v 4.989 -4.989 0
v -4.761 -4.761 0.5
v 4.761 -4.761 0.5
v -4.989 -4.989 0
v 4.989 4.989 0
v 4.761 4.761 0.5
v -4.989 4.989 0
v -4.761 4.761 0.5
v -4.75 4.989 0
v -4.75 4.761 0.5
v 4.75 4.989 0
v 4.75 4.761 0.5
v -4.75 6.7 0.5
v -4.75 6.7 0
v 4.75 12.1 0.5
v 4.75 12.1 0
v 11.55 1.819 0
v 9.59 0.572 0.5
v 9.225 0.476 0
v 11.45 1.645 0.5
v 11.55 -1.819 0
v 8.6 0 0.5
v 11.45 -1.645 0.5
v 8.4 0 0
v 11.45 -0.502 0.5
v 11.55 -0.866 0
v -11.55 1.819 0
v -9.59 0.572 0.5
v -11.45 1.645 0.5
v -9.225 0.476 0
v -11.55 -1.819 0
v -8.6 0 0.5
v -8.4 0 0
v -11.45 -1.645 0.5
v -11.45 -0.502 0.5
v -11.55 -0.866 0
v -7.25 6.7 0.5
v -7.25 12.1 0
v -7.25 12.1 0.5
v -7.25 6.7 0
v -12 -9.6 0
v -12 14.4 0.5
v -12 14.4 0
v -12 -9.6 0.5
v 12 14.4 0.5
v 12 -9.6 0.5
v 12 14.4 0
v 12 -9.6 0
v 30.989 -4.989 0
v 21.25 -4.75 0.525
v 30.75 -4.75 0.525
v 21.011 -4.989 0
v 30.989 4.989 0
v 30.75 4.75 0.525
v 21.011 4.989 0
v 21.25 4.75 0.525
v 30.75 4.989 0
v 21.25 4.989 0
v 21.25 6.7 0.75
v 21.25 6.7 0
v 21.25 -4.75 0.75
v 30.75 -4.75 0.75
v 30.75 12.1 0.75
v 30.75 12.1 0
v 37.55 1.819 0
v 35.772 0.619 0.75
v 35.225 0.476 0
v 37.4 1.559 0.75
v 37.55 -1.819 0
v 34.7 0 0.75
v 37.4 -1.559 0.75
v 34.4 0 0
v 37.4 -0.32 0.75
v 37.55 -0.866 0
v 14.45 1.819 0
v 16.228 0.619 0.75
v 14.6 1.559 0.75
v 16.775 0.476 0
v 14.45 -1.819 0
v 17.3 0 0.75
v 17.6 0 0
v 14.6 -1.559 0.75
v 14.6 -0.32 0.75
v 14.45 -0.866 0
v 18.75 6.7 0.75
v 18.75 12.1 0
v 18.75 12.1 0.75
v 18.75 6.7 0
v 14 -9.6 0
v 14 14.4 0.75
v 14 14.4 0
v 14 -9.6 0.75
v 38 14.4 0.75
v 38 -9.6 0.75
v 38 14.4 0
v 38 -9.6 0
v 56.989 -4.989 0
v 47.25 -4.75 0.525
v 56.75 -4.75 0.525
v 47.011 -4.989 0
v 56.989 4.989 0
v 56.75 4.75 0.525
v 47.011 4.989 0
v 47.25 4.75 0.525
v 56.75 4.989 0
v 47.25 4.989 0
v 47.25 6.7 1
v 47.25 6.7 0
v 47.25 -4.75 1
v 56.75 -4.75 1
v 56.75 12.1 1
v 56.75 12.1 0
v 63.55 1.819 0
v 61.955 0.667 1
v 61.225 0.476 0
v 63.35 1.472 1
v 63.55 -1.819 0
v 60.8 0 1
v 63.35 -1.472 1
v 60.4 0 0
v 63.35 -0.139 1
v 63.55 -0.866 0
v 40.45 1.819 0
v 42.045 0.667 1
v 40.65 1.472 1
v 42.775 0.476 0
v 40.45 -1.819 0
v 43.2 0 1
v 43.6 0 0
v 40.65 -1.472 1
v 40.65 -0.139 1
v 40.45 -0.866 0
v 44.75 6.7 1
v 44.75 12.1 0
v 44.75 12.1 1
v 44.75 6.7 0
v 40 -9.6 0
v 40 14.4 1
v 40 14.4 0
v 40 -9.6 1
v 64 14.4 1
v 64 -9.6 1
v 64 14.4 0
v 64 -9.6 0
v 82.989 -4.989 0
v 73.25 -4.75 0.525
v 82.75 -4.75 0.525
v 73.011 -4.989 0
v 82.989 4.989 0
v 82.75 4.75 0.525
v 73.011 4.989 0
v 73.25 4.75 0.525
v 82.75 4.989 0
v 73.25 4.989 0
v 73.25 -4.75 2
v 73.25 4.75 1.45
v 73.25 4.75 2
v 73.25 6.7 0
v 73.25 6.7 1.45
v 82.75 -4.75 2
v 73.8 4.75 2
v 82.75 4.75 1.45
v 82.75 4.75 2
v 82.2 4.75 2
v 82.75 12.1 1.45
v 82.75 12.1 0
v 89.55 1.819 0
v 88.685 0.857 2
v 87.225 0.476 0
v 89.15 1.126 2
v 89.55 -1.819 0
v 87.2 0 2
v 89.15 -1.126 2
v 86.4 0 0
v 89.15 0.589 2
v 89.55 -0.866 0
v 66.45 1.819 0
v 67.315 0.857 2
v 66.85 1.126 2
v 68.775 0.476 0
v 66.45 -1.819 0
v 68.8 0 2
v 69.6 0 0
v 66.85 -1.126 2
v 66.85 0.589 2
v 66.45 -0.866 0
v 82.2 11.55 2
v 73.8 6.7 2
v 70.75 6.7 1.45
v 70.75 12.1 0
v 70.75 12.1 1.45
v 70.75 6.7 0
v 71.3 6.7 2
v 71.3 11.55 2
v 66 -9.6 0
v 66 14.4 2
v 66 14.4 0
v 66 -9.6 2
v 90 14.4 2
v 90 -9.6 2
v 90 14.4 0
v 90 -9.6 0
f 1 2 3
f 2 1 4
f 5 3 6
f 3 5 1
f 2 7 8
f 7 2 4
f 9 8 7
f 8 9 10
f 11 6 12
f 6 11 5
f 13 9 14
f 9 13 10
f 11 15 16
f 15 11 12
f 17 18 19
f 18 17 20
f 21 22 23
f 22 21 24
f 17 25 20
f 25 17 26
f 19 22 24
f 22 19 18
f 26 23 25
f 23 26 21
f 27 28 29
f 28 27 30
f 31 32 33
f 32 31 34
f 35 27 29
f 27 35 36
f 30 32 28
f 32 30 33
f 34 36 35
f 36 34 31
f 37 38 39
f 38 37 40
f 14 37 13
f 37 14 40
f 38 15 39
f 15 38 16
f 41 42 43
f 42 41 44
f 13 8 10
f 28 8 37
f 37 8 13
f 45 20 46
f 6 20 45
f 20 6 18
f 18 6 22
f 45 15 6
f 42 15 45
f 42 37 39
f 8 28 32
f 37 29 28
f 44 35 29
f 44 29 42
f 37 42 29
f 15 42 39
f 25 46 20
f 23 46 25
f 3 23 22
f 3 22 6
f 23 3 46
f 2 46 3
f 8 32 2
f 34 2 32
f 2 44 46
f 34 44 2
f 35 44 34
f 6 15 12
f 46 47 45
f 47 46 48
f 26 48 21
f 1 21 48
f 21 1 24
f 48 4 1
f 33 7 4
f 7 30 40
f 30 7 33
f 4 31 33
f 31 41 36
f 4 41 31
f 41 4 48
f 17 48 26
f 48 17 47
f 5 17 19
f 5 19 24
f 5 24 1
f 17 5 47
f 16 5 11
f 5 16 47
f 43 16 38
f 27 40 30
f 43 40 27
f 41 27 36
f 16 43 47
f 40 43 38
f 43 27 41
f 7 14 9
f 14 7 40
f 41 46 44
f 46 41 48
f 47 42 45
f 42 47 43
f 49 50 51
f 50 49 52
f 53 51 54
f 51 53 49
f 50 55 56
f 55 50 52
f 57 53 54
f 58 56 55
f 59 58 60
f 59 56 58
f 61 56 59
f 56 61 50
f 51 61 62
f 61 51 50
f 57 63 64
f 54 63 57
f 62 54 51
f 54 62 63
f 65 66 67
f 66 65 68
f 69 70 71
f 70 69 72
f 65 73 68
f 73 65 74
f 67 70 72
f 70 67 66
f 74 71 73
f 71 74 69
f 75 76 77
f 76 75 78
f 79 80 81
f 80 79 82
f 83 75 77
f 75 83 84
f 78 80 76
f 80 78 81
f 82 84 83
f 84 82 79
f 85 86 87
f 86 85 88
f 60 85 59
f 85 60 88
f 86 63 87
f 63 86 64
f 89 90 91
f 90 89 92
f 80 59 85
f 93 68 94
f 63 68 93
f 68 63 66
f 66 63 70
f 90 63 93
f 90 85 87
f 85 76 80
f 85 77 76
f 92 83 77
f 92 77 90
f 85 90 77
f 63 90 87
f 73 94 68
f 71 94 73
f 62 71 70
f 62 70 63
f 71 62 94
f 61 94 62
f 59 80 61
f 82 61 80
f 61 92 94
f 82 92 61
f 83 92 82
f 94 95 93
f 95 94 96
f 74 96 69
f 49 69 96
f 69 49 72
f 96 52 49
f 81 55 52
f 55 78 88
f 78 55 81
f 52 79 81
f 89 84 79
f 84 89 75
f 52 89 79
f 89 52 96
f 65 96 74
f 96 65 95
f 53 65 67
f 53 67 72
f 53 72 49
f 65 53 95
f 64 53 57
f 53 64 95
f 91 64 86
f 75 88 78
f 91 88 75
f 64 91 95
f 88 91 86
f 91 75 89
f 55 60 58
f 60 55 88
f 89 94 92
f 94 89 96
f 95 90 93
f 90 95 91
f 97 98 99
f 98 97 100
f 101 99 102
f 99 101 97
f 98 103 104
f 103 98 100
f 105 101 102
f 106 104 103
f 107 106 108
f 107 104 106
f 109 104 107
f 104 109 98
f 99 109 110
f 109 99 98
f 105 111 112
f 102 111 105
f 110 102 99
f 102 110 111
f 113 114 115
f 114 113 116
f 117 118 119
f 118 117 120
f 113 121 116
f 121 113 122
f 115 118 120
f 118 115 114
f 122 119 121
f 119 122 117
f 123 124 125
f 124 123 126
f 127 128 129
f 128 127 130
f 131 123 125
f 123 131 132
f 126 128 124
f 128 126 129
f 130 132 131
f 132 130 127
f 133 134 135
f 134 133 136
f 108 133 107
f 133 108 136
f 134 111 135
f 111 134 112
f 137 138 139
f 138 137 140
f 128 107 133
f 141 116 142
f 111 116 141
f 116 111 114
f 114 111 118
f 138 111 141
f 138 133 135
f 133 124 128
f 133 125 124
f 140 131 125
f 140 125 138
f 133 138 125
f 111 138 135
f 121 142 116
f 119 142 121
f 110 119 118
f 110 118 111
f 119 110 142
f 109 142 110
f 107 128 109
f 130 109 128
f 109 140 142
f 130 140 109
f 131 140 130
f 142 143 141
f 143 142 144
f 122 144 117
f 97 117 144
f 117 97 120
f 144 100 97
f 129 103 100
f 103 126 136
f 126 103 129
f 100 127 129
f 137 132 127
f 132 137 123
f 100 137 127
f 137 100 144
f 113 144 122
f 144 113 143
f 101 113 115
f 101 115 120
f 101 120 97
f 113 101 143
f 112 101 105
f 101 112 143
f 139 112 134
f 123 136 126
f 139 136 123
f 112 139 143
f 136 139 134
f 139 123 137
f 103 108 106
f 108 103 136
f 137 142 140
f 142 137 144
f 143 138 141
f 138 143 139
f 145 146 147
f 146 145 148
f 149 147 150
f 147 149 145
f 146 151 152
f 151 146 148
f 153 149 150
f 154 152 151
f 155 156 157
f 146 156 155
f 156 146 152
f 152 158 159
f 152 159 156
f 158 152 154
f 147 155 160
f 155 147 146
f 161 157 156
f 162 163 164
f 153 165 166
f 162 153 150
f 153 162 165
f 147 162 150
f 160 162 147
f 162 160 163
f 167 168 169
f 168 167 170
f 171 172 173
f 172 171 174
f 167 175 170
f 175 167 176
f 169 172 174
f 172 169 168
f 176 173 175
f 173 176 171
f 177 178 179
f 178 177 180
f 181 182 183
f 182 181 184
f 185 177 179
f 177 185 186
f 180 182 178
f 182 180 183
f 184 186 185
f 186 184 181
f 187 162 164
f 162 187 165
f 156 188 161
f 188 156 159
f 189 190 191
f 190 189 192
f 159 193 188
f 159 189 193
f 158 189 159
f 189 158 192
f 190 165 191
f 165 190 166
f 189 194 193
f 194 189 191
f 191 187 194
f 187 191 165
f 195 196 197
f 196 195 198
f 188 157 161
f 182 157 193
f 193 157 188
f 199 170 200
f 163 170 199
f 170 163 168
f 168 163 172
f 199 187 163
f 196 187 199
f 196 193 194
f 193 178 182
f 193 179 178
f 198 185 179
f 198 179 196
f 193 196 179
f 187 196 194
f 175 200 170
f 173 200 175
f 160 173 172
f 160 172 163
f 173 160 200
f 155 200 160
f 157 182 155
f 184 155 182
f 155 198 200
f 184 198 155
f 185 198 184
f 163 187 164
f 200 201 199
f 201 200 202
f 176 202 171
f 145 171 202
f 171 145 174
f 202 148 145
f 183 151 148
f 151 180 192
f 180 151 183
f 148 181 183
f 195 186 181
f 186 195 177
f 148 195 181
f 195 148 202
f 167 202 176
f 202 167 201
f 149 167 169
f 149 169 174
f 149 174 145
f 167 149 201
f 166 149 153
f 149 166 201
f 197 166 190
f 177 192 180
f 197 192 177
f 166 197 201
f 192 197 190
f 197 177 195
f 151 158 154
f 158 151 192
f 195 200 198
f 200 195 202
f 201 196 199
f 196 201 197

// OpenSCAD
// file: picam_2_screw_on.scad
/******************************************************************
*                                                                 *
* OpenFlexure Microscope: Raspberry Pi Camera v2 push-fit mount   *
*                                                                 *
* This is part of the OpenFlexure microscope, an open-source      *
* microscope and 3-axis translation stage.  It gets really good   *
* precision over a ~10mm range, by using plastic flexure          *
* mechanisms.                                                     *
*                                                                 *
* This file provides two parts for the microscope; the bit that   *
* fits onto the camera (picam2_camera_mount) and a cover that     *
* protects the PCB (picam_cover).  The former is part of the      *
* optics module in optics.scad, and the latter is printed         *
* directly.                                                       *
*                                                                 *
* The fit is set by one main function, picam2_push_fit().  It's   *
* designed to be subtracted from a solid block, with the bottom   *
* of the block at z=0.  It grips the plastic camera housing with  *
* four slightly flexible fingers, which ensures the camera pops   *
* in easily but is held relatively firmly.  Two screw holes are   *
* also provided that should self-tap with M2 or similar screws.   *
* I recommend you use these for extra security if the camera is   *
* likely to be handled a lot.                                     *
*                                                                 *
* (c) Richard Bowman, January 2016                                *
* Released under the CERN Open Hardware License                   *
*                                                                 *
******************************************************************/


use <utilities.scad>;

d=0.05; //small distance!

function camera_mount_height() = 4.5;
bottom = camera_mount_height() * -1;

module picam2_cutout( beam_length=15){
    // This module is designed to be subtracted from the bottom of a shape.
    // The z=0 plane should be the print bed.
    // It includes cut-outs for the components on the PCB and also a push-fit hole
    // for the camera module.  This uses flexible "fingers" to grip the camera firmly
    // but gently.  Just push to insert, and wiggle to remove.  You may find popping 
    // off the brown ribbon cable and removing the PCB first helps when extracting
    // the camera module again.
    cw = 8.5 + 1.0; //size of camera box sides (NB deliberately loose fitting)
    ch=2.9; //height of camera box (including foam support)
    camera = [cw,cw,ch]; //size of camera box
    hole_r = 4.3; //size of camera aperture
	union(){
        sequential_hull(){
            //cut-out for camera
            translate([0,0,-d]) cube([cw+0.5,cw+0.5,d],center=true); //wider at bottom
            translate([0,0,0.5]) cube([cw,cw,d],center=true);
            translate([0,0,ch/2]) cube([cw,cw,ch],center=true);
            cylinder(r=hole_r, h=2*camera_mount_height(), center=true);
        }
            
        //ribbon cable at top of camera
        fh=1.5;
        mh = camera_mount_height();
        
        dz = mh-fh-0.75;
        rw = cw - 2*dz;
        hull(){
            translate([-cw/2,cw/2-2,-d]) cube([cw,7,fh]); //flex
            translate([-rw/2,cw/2-2,-d]) cube([rw,7,fh+dz]); //flex
        }
        hull(){
            translate([-cw/2-2.5,6.7,-d]) cube([cw+2.5, 5.4, fh]); //connector
            translate([-rw/2-2.5,6.7,-d]) cube([rw+2.5, 5.4-dz, fh+dz]); //connector
        }
        
        //beam clearance
        cylinder(r=hole_r, h=beam_length);
        
        //chamfered screw holes for mounting
        sx = 21/2; //position of screw holes
        reflect([1,0,0]) translate([sx,0,0]) rotate(60){
            //cylinder(r1=3, r2=0,h=4, center=true); //chamfered bottom
            //deformable_hole_trylinder(1.5/2,2.1/2,h=12, center=true);
            cylinder(r1=3.1, r2=1.1, h=5, $fn=3, center=true);
            cylinder(r=1.1, h=20, $fn=3, center=true);
        }
	}
}

module picam2_pcb_bottom(){
    // This is an approximate model of the pi camera PCB for the purposes of making
    // a slide-on cover.  NB z=0 is the bottom of the PCB, which is nominally 1mm thick.
    pcb = [25+0.5,24+0.5,1+0.3];
    socket = [pcb[0],6.0+0.5,2.7];
    components = [pcb[0]-1*2, pcb[1]-1-socket[1], 2];
    translate([0,2.4,0]) union(){ //NB the camera bit isn't centred!
        translate([0,0,pcb[2]/2]) cube(pcb,center=true); //the PCB
        translate([-components[0]/2,-pcb[1]/2+socket[1],-components[2]+d]) cube(components); //the little components
        //the ribbon cable socket
        translate([-socket[0]/2,-pcb[1]/2,-socket[2]+d]) cube(socket); //the ribbon cable socket
        translate([-components[0]/2,-pcb[1]/2,-0.5]) cube([components[0],socket[1]+0.5,0.5+d]); //pins protrude slightly further
        
        //mounting screws (NB could be extruded in -y so the cover can slide on)
        reflect([1,0,0]) mirror([0,0,1]) translate([21/2,-2.4,-d]){
            cylinder(r=2.5,h=10);
            cylinder(r=1.5,h=15,center=true); //screw might poke through the top...
        }
    }
}
//translate([0,0,-1]) picam_pcb_bottom();

module camera_mount(){
    // A mount for the pi camera v2
    // This should finish at z=0+d, with a surface that can be
    // hull-ed onto the lens assembly.
    b = 24;
    w = 25;
    rotate(45) difference(){
        translate([0,2.4,0]) sequential_hull(){
            translate([0,0,bottom]) cube([w,b,d],center=true);
            translate([0,0,-1]) cube([w,b,d],center=true);
            translate([0,0,0]) cube([w-(-1.5-bottom)*2,b,d],center=true);
        }
        translate([0,0,bottom]) picam2_cutout();
    }
}
difference(){
    //camera_mount();
    //rotate([90,0,0]) cylinder(r=999,h=999,$fn=4);
}

/////////// Cover for camera board //////////////
module picam_cover(){
    // A cover for the camera PCB, slips over the bottom of the camera
    // mount.  This version should be compatible with v1 and v2 of the board
    b = 24;
    w = 25;
    h = 3;
    t = 1; //wall thickness
    centre_y=2.4;
    difference(){
        union(){
            //bottom and sides
            difference(){
                translate([-w/2,-b/2+centre_y,0]) cube([w, b, h]);
                // cut out centre to form walls on 3 sides
                translate([-w/2+t,-b/2+centre_y-t,0.75]) cube([w-2*t, b, h]);
                //chamfer the connector edge for ease of access
                translate([-999,-b/2+centre_y,h]) rotate([-135,0,0]) cube([9999,999,999]);
            }
            //mounting screws
            reflect([1,0,0]) translate([21/2, 0, 0]) cylinder(r=3, h=h, $fn=16);
        }
        //counterbore the mounting screws
        reflect([1,0,0]) translate([21/2, 0, h-1]) rotate(90) intersection(){
           cylinder(r=2, h=999, $fn=16, center=true);
            hole_from_bottom(r=1.1, h=999, base_w=999);
        }
    }
} 
picam_cover();
// main file
/******************************************************************
*                                                                 *
* Raspberry Pi camera adapter for Motic BA210E Microscope         *
*                                                                 *
* This shim allows adjustment of the distance between the camera 
* and the lens.
*
* (c) Richard Bowman, January 2016                                *
* Released under the CERN Open Hardware License                   *
*                                                                 *
******************************************************************/



use <utilities.scad>;
use <picam_2_screw_on.scad>;

d = 0.05;
$fn=24;


thicknesses = [0.5, 0.75, 1.0, 2.0];
for(i=[0:3]) translate([i*26,0,0]){
    difference(){
        /// Camera adapter tube for microscope
        t = thicknesses[i];
        translate([0,2.4,t/2]) cube([24, 24, t],center=true);
        
        //cut-out for the camera
        picam2_cutout();
        
    }
}
